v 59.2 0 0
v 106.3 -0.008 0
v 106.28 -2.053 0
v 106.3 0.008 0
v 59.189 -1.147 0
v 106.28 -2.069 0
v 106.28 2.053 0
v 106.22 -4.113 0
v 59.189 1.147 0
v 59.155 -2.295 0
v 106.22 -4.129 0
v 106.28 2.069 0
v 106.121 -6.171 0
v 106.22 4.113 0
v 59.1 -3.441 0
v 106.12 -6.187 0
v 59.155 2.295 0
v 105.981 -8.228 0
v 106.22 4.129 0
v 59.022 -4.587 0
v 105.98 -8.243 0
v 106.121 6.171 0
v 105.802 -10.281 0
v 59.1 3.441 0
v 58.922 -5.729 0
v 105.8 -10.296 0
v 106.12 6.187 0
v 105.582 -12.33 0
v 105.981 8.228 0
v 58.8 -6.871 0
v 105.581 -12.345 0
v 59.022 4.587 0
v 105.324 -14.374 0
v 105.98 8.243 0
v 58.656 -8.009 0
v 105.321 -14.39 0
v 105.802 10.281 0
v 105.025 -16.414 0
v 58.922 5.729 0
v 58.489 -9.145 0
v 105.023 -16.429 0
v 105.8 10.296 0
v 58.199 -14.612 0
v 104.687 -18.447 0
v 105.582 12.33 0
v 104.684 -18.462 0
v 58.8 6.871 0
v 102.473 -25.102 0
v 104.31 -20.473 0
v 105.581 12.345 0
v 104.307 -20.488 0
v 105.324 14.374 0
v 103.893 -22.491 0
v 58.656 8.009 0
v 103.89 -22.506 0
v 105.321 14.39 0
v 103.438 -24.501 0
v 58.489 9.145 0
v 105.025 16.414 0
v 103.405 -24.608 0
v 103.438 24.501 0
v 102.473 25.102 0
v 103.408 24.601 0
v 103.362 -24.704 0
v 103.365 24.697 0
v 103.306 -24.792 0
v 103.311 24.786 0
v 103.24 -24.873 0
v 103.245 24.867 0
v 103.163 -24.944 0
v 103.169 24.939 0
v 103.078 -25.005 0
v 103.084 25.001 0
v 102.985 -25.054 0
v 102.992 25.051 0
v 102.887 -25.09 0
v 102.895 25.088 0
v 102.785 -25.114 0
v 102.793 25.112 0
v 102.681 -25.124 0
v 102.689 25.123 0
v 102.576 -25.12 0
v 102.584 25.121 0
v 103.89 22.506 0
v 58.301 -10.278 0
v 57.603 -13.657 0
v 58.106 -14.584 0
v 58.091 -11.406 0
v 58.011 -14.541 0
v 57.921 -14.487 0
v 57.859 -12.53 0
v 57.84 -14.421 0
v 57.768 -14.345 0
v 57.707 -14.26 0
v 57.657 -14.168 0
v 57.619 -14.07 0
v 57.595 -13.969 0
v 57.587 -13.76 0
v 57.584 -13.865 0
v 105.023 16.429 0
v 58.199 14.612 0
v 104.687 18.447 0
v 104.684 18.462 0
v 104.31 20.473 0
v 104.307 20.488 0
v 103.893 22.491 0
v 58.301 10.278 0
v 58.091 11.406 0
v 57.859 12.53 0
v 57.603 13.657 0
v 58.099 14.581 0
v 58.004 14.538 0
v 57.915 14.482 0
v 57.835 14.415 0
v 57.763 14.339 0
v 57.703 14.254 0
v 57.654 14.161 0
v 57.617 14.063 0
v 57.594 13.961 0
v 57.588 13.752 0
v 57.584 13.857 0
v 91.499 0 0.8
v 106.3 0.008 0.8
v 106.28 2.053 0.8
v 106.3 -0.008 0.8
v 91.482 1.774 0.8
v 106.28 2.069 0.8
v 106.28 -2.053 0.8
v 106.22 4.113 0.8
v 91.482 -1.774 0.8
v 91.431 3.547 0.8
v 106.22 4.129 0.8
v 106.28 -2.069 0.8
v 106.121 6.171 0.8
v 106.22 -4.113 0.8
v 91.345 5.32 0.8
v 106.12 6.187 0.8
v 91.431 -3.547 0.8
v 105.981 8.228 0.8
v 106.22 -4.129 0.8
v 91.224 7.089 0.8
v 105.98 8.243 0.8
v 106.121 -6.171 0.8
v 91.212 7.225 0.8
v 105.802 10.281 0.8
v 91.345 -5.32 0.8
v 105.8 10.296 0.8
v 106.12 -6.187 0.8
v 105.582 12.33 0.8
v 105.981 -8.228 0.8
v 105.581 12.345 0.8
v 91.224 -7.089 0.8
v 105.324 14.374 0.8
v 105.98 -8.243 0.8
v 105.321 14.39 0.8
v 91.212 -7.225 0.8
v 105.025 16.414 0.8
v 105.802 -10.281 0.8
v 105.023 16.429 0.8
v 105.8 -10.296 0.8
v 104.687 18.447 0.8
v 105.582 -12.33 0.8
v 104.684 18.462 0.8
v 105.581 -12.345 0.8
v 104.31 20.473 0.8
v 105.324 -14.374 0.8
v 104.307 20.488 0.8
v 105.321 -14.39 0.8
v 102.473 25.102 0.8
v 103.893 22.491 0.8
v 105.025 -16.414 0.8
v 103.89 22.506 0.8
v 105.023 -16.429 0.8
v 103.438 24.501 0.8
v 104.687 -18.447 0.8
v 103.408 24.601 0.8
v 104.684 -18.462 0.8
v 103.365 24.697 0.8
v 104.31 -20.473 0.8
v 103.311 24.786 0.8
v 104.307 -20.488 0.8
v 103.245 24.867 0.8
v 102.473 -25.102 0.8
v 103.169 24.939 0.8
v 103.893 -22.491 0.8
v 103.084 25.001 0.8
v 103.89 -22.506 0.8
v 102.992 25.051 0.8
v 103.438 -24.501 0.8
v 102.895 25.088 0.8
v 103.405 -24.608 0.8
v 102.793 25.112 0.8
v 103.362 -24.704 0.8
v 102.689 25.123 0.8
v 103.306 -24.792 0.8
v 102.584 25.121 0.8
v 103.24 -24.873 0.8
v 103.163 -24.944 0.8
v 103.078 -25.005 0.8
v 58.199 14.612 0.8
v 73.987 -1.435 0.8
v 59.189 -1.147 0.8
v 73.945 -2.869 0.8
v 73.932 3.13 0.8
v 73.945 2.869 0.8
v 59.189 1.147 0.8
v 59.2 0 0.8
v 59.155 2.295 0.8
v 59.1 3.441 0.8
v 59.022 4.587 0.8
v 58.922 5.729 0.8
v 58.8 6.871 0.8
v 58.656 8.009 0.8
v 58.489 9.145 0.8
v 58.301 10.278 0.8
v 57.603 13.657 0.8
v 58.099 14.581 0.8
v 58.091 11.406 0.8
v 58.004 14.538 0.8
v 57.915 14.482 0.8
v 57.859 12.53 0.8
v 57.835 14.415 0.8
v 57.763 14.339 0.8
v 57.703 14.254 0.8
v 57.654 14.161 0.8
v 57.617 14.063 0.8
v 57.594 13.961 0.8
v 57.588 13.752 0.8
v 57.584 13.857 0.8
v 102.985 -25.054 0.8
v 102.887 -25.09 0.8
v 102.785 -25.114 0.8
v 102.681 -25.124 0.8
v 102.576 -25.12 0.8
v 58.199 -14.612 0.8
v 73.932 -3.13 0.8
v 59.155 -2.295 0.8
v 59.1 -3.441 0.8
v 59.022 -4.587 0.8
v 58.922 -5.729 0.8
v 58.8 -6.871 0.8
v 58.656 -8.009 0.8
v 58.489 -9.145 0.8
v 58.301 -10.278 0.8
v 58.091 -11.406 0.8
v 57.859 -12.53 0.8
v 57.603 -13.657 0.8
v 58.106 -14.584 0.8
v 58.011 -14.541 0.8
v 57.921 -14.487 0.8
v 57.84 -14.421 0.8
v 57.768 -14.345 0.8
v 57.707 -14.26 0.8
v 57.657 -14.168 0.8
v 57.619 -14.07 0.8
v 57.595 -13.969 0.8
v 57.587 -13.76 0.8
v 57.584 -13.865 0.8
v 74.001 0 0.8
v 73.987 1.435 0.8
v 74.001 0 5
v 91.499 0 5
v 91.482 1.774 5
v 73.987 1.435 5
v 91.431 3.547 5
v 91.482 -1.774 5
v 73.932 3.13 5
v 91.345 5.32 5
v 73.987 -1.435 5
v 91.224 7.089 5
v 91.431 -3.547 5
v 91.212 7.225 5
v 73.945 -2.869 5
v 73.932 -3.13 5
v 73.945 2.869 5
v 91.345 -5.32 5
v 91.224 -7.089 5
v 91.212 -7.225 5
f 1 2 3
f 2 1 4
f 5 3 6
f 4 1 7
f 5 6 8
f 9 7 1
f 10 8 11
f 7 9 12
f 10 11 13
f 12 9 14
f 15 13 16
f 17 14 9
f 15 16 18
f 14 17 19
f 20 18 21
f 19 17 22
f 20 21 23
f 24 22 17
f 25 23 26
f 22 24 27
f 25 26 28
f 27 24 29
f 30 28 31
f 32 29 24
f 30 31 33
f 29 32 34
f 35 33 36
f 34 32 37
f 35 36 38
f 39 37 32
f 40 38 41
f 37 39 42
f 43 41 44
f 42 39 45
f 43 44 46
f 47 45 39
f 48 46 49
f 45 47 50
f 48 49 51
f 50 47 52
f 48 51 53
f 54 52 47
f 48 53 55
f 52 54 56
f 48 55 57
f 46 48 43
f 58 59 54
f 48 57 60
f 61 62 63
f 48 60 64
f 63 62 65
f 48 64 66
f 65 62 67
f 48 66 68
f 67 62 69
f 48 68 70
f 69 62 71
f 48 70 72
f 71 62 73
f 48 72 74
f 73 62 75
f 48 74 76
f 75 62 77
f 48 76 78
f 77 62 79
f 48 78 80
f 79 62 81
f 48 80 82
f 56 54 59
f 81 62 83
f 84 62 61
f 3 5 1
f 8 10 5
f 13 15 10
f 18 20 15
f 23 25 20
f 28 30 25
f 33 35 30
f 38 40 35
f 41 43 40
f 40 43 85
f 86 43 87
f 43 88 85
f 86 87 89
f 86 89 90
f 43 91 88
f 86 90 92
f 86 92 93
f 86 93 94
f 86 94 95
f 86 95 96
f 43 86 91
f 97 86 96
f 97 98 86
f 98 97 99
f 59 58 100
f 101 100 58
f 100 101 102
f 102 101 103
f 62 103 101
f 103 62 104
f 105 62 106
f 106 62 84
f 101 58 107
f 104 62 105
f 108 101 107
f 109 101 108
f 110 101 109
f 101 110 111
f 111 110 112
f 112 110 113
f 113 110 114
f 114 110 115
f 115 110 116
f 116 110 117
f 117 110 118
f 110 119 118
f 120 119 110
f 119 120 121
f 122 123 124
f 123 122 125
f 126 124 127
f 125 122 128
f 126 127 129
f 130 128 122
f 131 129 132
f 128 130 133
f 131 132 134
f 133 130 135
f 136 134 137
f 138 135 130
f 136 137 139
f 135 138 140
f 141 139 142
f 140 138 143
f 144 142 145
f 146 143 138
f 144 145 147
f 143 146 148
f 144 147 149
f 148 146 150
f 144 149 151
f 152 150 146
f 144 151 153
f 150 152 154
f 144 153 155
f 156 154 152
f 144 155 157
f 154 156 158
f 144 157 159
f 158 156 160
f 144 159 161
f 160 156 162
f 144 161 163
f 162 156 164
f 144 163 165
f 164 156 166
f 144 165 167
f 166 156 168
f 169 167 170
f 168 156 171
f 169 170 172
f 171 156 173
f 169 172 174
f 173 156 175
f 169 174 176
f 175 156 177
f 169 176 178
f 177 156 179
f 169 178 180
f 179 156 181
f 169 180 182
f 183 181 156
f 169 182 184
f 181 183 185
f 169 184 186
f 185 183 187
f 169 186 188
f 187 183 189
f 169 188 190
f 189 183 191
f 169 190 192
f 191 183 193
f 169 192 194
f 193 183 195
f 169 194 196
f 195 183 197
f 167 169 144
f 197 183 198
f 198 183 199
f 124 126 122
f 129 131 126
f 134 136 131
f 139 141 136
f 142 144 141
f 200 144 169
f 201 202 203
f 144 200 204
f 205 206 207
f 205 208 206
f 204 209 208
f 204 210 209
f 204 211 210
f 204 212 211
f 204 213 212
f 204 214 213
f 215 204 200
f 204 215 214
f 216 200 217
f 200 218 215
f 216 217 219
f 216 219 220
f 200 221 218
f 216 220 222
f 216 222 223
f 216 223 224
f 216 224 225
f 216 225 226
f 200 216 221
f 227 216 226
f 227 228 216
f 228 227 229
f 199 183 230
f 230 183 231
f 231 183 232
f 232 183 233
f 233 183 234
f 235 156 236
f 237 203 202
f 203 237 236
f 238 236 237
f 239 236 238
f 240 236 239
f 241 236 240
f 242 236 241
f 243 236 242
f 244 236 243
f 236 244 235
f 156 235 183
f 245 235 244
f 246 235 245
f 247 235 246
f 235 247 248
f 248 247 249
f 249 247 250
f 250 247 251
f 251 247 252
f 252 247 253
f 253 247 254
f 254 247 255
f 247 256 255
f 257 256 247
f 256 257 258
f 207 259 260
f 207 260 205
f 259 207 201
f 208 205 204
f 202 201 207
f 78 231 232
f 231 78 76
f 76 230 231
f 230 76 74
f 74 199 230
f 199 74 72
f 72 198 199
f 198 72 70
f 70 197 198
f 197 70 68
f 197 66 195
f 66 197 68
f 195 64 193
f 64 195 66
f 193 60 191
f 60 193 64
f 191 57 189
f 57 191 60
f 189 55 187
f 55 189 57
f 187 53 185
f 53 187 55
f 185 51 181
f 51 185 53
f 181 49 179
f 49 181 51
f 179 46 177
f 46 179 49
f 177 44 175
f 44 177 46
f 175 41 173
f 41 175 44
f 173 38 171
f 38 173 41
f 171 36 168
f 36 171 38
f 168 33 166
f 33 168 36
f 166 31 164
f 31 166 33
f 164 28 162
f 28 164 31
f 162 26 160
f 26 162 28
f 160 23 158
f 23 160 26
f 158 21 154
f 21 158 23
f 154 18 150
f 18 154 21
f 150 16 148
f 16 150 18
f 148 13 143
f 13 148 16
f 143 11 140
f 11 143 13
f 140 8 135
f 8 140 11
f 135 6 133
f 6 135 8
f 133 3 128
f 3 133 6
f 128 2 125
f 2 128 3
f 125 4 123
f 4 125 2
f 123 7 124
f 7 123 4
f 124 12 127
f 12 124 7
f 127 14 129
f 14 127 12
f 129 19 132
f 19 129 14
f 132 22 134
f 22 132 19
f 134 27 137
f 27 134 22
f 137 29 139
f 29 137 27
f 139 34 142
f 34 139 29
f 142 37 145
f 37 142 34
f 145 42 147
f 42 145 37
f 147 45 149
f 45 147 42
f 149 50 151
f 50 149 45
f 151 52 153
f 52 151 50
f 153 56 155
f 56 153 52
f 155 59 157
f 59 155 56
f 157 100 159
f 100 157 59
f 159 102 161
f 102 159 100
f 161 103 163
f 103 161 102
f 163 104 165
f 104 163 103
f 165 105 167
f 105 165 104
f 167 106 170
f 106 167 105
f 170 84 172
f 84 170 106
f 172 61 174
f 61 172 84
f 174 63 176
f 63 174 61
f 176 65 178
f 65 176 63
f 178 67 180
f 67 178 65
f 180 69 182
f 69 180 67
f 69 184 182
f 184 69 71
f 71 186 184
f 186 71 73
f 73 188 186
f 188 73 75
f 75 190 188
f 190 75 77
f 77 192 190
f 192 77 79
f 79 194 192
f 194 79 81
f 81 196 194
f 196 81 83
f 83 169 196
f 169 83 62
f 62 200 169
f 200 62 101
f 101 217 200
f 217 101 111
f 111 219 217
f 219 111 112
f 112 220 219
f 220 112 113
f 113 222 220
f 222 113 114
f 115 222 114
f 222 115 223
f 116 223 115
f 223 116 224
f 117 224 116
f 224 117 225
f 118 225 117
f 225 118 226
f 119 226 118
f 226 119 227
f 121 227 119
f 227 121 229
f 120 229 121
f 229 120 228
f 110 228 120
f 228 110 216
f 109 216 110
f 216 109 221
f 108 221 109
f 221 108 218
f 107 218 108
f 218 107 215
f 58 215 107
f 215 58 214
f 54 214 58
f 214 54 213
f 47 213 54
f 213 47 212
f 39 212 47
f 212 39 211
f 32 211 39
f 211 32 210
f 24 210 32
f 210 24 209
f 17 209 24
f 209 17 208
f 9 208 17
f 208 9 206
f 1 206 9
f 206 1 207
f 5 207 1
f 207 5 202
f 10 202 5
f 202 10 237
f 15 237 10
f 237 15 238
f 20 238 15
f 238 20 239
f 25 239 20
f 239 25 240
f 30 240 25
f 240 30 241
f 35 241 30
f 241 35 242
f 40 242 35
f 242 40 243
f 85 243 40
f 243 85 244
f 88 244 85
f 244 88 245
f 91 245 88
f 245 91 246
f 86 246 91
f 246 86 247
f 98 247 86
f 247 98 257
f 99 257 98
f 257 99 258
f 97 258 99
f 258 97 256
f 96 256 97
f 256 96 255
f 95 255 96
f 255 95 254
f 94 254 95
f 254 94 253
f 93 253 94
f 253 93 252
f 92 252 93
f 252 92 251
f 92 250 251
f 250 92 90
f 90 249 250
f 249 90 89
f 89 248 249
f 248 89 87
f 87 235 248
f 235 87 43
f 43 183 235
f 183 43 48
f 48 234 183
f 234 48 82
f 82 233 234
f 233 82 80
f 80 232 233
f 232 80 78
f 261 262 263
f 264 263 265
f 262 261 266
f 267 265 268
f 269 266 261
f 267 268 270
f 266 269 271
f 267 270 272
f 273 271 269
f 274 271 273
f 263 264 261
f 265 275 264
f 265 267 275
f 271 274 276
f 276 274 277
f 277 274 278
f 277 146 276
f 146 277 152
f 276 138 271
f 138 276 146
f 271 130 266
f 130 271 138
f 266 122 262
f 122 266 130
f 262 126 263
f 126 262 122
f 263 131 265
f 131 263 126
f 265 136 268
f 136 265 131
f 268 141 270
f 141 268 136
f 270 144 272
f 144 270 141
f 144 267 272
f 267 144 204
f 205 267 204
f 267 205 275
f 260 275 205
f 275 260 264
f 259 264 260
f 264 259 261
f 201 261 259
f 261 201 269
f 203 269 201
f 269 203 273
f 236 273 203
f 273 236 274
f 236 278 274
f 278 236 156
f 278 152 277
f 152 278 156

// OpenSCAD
// Gen-CQ — bobbin BASE (bottom flange + hub). Print x12, flange down. Wind 26 AWG x 240 t around
// the hub with the LID glued on (coil_lid.stl). Copper lives ONLY between the flanges (no proud winds).
include <parameters.scad>;
$fn = 48;
module sector_2d(r_in, r_out, ang) {
    polygon([
        for (a = [-ang/2 : ang/24 : ang/2]) [r_in*cos(a), r_in*sin(a)],
        for (a = [ang/2 : -ang/24 : -ang/2]) [r_out*cos(a), r_out*sin(a)]
    ]);
}
module footprint_2d() { offset(r=wall) sector_2d(coil_id_r, coil_od_r, span_deg); }
module hub_2d()       { offset(delta=-coil_core_inset) sector_2d(coil_id_r, coil_od_r, span_deg); }

union() {
    linear_extrude(flange_t) footprint_2d();
    translate([0, 0, flange_t - 0.01]) linear_extrude(former_web + 0.01) hub_2d();
}
